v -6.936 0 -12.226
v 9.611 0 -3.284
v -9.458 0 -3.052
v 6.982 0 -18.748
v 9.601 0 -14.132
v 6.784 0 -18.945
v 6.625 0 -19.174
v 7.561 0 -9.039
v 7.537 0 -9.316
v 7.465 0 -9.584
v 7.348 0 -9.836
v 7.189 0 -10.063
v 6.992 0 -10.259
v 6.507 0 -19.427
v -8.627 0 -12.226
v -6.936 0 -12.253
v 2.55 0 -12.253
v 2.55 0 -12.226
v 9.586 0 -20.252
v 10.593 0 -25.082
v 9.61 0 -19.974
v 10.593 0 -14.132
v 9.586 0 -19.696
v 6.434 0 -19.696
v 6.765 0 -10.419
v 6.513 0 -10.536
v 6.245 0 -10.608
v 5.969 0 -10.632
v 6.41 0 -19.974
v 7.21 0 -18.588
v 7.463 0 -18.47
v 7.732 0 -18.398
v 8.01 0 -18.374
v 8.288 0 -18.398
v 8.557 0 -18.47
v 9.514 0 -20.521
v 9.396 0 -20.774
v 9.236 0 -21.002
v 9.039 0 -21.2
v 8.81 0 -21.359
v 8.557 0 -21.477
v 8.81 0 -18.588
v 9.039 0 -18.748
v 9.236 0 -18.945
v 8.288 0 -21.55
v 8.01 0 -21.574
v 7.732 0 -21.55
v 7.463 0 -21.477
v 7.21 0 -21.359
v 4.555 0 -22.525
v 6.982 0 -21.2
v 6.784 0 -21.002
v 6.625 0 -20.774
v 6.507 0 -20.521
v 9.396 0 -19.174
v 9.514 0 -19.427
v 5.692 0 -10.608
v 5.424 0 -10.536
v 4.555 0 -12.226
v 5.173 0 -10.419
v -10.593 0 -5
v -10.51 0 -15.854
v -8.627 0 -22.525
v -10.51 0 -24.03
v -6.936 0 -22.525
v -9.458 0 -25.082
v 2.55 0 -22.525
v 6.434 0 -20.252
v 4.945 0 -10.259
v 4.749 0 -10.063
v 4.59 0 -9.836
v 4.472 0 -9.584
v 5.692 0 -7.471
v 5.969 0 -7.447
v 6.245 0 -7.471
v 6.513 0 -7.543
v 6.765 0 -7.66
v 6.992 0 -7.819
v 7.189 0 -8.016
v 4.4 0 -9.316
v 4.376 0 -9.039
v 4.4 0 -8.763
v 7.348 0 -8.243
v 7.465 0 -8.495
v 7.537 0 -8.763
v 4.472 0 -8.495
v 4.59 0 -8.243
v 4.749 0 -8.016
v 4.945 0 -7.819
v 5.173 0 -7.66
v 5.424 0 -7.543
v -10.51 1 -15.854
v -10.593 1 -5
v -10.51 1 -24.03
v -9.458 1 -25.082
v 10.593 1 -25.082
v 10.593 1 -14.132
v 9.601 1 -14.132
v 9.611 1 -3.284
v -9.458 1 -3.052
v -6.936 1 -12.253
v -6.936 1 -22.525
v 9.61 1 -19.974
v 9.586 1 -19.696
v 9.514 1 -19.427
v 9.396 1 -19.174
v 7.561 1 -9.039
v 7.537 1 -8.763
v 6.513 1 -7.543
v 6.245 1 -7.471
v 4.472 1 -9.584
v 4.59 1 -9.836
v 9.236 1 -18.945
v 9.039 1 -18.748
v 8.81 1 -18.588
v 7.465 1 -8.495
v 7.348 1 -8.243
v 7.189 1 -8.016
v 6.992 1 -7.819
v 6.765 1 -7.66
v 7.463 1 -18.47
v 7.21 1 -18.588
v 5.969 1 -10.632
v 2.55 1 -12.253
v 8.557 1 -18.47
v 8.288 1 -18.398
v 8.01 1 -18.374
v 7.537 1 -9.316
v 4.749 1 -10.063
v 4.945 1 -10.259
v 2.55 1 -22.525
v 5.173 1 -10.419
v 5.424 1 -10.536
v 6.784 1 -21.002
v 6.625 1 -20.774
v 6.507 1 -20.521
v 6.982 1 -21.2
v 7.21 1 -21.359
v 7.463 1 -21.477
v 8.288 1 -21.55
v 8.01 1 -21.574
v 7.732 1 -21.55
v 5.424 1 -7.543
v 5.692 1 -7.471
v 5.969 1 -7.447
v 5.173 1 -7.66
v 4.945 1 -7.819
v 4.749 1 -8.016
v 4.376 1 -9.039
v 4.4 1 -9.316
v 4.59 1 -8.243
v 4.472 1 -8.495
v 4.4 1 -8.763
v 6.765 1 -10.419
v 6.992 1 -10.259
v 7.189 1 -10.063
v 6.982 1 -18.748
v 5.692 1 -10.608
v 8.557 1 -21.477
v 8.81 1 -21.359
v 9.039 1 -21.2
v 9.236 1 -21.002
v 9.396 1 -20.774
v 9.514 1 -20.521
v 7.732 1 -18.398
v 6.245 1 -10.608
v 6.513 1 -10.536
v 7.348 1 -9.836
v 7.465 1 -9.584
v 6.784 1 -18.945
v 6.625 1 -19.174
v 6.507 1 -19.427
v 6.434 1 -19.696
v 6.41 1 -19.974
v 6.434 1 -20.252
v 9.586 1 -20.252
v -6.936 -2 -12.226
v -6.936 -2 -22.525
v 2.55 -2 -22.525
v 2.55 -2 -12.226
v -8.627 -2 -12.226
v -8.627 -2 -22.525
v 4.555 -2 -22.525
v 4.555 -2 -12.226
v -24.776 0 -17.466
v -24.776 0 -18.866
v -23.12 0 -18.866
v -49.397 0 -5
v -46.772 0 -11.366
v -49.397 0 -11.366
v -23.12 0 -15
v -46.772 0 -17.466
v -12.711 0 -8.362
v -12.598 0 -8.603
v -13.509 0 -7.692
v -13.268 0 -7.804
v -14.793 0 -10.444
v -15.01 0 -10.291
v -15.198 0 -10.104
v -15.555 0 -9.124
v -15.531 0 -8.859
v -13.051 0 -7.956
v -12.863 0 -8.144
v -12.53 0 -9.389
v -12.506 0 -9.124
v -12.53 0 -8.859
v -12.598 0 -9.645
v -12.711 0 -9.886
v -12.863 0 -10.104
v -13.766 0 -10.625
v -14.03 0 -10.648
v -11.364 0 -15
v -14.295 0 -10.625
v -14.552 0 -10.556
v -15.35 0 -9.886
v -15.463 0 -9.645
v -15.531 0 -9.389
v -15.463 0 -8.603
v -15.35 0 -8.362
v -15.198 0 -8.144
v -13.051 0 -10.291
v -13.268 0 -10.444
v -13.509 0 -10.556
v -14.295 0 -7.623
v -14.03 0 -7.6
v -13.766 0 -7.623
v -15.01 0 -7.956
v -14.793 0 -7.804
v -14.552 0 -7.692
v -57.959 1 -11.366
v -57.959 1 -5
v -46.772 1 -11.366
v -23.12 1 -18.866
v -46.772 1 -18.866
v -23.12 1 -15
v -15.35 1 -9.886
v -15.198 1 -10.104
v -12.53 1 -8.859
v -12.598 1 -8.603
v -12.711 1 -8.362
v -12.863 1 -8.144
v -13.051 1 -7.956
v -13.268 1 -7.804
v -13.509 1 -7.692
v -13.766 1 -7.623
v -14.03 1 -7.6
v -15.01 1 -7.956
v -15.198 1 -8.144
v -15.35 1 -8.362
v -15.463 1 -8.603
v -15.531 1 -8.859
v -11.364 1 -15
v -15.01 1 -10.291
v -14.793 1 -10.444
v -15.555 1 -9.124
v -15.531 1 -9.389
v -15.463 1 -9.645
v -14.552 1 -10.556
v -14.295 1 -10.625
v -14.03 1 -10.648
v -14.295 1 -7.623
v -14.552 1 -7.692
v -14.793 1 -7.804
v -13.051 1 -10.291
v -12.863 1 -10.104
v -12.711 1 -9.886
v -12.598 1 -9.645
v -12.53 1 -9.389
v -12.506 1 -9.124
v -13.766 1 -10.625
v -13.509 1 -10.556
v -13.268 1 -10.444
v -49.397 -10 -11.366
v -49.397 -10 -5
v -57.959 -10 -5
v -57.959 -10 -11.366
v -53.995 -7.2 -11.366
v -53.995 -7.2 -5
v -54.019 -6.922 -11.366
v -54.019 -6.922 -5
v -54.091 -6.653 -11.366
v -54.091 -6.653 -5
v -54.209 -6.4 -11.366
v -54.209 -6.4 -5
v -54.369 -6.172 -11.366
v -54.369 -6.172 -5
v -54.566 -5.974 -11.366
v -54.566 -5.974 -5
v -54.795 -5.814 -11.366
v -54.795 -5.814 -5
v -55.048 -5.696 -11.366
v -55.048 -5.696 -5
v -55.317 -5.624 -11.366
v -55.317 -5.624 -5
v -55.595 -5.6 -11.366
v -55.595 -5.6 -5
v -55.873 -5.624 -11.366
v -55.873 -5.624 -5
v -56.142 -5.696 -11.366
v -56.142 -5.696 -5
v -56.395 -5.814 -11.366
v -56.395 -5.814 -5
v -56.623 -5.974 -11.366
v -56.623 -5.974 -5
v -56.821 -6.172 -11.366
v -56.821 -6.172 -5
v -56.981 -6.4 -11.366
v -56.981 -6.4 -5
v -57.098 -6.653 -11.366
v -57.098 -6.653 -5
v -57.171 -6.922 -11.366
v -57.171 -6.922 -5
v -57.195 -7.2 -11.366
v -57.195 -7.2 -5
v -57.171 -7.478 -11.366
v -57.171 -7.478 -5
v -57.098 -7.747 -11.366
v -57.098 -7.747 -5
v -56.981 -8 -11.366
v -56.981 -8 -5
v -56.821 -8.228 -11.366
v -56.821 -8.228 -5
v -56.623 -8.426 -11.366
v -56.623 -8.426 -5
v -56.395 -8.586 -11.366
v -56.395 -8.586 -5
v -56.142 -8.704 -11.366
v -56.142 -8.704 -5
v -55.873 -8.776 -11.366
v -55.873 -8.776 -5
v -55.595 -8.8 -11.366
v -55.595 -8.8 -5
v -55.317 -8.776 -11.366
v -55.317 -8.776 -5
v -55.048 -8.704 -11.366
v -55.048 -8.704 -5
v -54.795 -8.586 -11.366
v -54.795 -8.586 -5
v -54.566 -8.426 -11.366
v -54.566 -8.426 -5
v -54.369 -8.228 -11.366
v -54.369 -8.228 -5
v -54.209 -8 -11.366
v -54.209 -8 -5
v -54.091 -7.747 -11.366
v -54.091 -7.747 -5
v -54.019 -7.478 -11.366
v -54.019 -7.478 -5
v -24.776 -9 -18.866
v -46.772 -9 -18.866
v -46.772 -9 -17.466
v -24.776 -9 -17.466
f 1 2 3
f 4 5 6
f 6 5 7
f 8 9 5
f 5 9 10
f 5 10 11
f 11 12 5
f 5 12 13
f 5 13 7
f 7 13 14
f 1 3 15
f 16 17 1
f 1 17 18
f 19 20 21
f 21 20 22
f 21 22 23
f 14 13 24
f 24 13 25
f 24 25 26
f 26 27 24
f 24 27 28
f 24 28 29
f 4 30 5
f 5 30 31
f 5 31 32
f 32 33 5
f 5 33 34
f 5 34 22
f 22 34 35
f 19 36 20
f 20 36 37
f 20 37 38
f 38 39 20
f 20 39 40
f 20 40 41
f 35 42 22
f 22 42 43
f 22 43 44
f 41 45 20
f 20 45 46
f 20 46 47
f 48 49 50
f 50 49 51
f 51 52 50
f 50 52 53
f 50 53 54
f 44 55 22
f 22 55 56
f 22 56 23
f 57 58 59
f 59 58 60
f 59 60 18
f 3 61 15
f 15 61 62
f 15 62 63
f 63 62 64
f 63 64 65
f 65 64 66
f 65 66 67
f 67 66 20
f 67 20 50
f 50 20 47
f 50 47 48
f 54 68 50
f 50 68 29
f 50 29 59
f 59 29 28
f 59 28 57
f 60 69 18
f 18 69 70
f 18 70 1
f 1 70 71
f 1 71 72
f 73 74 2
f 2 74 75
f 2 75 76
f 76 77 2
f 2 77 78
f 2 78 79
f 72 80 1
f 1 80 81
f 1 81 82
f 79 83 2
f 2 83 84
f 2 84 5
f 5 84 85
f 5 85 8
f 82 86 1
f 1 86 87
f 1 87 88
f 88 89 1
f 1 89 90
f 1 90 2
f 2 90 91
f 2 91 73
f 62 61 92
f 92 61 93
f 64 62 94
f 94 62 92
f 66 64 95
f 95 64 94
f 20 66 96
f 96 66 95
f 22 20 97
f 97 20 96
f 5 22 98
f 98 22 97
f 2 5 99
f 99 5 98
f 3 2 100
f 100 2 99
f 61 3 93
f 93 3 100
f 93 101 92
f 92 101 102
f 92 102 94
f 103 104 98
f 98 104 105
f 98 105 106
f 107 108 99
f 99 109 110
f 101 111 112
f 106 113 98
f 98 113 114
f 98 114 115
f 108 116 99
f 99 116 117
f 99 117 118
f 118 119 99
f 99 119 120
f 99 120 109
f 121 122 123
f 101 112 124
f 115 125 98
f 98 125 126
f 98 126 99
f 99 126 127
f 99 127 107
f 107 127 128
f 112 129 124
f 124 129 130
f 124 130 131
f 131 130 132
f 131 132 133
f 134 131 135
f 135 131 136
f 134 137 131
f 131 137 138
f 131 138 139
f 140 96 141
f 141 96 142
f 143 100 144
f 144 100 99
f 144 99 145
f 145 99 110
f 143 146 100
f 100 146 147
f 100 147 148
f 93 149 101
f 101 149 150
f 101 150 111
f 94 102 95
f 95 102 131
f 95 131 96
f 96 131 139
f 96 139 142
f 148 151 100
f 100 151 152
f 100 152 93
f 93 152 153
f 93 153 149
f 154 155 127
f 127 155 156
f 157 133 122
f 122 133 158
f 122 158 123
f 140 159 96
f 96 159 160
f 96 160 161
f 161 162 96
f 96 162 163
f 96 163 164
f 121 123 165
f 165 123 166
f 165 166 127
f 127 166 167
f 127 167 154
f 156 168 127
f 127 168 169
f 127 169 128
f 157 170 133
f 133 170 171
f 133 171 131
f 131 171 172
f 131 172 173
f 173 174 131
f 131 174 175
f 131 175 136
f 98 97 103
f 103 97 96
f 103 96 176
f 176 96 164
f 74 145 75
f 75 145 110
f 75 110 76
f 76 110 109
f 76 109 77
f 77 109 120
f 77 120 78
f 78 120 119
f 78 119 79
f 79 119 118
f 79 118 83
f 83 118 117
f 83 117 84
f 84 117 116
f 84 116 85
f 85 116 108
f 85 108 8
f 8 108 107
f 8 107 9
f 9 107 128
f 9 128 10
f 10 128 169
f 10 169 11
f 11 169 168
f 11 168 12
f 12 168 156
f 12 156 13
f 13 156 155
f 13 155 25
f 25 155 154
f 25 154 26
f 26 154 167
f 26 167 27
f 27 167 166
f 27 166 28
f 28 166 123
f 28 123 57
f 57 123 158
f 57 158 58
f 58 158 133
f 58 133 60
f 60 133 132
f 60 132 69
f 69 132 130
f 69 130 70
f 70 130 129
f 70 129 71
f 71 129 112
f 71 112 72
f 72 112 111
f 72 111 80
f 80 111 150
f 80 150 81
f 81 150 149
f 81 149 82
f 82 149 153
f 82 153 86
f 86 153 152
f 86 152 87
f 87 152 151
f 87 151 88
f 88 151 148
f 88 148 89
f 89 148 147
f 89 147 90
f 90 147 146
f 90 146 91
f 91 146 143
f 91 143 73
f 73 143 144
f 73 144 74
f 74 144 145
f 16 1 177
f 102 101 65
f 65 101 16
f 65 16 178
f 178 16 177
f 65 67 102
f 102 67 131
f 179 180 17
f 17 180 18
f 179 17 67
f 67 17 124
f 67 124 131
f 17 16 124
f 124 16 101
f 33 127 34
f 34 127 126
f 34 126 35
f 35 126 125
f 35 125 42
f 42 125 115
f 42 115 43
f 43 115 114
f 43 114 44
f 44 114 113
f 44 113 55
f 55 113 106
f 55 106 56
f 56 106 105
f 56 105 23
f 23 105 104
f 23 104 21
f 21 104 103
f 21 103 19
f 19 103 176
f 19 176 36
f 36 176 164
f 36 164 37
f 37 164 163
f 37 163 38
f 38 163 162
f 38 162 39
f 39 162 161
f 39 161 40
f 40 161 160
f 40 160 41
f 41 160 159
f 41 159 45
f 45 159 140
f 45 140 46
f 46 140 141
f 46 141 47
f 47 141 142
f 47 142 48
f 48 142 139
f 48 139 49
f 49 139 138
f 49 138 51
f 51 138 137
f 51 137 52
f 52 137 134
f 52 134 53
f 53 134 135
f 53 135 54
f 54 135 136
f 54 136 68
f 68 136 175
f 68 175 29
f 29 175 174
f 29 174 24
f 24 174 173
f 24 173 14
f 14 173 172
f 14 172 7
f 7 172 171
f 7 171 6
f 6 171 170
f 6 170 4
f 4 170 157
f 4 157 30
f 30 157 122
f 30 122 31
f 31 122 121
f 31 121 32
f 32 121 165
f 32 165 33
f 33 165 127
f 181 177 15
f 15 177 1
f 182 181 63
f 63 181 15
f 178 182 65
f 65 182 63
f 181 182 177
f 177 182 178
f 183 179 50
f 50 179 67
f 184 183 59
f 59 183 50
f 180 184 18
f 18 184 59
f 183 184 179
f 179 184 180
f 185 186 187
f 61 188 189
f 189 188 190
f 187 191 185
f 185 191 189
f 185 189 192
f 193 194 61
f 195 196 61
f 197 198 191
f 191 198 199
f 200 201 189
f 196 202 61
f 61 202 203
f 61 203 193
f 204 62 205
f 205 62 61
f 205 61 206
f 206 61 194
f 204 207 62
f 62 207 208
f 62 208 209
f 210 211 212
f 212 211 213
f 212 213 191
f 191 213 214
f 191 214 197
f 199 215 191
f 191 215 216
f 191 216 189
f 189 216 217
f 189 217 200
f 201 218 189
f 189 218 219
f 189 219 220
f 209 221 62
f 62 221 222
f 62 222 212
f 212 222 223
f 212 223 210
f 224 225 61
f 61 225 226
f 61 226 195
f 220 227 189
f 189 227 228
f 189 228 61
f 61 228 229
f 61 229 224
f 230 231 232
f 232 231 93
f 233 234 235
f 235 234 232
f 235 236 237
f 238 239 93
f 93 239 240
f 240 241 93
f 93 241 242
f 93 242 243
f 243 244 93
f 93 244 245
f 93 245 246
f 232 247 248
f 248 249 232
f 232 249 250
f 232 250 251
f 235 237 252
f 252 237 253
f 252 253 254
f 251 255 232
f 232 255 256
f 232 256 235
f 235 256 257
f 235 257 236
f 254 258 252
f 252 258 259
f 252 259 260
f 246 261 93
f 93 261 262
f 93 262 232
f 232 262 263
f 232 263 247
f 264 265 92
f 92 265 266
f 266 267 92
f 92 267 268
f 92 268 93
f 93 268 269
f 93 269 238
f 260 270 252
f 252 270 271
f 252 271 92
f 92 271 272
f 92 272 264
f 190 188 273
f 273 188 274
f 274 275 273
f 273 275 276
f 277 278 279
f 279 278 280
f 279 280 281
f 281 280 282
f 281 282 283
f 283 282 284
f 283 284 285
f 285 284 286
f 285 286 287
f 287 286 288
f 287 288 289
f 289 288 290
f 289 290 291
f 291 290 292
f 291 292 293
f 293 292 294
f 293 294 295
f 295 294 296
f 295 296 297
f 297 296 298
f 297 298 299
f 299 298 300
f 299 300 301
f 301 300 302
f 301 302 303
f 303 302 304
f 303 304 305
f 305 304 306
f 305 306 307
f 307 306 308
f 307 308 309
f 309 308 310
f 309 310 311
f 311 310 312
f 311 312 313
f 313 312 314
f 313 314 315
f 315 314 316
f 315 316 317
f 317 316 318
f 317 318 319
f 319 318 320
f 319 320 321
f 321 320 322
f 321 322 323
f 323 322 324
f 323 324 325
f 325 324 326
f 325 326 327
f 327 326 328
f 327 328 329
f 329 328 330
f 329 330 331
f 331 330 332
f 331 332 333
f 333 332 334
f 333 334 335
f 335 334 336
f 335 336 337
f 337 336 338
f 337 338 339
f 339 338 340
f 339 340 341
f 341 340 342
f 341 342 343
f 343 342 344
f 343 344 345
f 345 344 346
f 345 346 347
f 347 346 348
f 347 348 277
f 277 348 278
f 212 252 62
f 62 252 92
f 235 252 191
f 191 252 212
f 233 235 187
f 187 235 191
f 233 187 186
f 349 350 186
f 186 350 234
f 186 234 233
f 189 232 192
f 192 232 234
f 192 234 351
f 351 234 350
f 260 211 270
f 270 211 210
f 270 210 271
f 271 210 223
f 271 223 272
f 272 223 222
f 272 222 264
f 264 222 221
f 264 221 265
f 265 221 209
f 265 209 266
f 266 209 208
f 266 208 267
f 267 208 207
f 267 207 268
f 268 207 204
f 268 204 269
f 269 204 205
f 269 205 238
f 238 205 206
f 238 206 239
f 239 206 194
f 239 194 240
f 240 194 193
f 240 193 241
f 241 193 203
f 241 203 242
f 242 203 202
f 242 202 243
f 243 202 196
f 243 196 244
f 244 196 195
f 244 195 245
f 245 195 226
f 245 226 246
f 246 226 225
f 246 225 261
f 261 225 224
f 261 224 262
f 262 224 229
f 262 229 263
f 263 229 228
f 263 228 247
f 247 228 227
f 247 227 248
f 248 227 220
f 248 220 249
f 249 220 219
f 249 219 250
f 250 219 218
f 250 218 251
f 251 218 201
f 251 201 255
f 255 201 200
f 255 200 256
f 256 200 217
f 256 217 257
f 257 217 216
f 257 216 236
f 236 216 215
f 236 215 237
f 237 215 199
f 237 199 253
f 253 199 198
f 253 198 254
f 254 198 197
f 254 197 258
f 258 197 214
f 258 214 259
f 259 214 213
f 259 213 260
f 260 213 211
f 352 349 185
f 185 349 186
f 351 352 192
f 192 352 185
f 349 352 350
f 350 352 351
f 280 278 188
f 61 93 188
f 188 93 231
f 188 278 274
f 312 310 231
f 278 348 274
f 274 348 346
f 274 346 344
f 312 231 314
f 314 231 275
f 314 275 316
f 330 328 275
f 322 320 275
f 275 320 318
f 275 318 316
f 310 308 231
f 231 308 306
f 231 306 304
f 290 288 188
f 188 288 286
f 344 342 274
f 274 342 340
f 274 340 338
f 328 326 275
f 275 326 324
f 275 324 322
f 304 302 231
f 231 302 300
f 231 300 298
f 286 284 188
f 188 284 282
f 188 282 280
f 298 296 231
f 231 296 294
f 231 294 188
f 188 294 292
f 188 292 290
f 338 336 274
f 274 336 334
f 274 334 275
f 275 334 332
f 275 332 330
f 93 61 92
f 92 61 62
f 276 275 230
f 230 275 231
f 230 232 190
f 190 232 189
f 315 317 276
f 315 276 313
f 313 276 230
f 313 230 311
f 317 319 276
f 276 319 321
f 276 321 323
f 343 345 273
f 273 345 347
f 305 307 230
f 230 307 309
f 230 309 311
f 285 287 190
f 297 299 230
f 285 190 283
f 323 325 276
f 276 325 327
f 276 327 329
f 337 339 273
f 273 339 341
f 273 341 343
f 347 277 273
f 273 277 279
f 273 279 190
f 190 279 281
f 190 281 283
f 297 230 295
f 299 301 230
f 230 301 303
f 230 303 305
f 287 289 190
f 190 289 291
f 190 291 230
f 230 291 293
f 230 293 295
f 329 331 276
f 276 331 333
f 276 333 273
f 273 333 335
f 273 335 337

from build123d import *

# Parameters (mm, degrees)
SKETCH_1_R          = 1.524071043
SKETCH_1_R_2        = 1.6
EXTRUDE_1_DEPTH     = 1
SKETCH_2_W          = 21.996438878
SKETCH_2_H          = 1.4
EXTRUDE_2_DEPTH     = 9
SKETCH_3_W          = 9.861847607
SKETCH_3_H          = 7.366382786
EXTRUDE_3_DEPTH     = 10
SKETCH_5_R          = 1.6
CUT_EXTRUDE_1_DEPTH = 7.366383
CUT_EXTRUDE_2_DEPTH = 12
SKETCH_7_R          = 1.592573362
SKETCH_7_R_2        = 1.6
SKETCH_7_W          = 9.485642318
SKETCH_7_H          = 10.27215013
EXTRUDE_4_DEPTH     = 1
SKETCH_8_W          = 1.691344217
SKETCH_8_H          = 10.298863766
SKETCH_8_W_2        = 2.005424039
EXTRUDE_5_DEPTH     = 2
SKETCH_9_W          = 1.3
SKETCH_9_H          = 7.366382786
CUT_EXTRUDE_3_DEPTH = 11
SKETCH_10_W         = 11.187081985
SKETCH_10_H         = 1
CUT_EXTRUDE_4_DEPTH = 11


with BuildPart() as part:
    # 草图1 → 凸台-拉伸1 (new body)
    with BuildSketch(Plane(origin=(0, 0, 0), x_dir=(1, 0, 0), z_dir=(0, 1, 0))):
        Polygon((-59.259088641, 5), (-10.592885375, 5), (-7.033226841, 1.452276921), (10.592885375, 1.452276921), (10.592885375, -5), (10.592885375, -12.524779967), (-8.311746214, -12.524779967), (-10.311746214, -10.524779967), (-10.311746214, -6.052343932), (-11.311746214, -5.052343932), (-11.364090146, -5), (-23.120004307, -5), (-23.120004307, -8.866382786), (-46.772006656, -8.866382786), (-46.772006656, -2.366382786), (-59.259088641, -2.366382786), (-59.259088641, 0), align=None)
        with Locations((-14.030480272, 0.876017114)):
            Circle(SKETCH_1_R, mode=Mode.SUBTRACT)
        with Locations((5.968790226, -10.352689008)):
            Circle(SKETCH_1_R_2, mode=Mode.SUBTRACT)
    extrude_1 = extrude(amount=EXTRUDE_1_DEPTH)

    # 草图2 → 凸台-拉伸2 (add)
    with BuildSketch(Plane.XZ):
        with Locations((-35.773787217, 8.166382786)):
            Rectangle(SKETCH_2_W, SKETCH_2_H)
    extrude_2 = extrude(amount=EXTRUDE_2_DEPTH)

    # 草图3 → 凸台-拉伸3 (add)
    with BuildSketch(Plane.XZ):
        with Locations((-54.328164838, -1.316808607)):
            Rectangle(SKETCH_3_W, SKETCH_3_H)
    extrude_3 = extrude(amount=EXTRUDE_3_DEPTH)

    # 草图5 → 切除-拉伸1 (cut)
    with BuildSketch(Plane.XY.offset(2.366382786)):
        with Locations((-55.594883285, -7.2)):
            Circle(SKETCH_5_R)
    cut_extrude_1 = extrude(amount=-CUT_EXTRUDE_1_DEPTH, mode=Mode.SUBTRACT)

    # 镜向3: 凸台-拉伸1, 凸台-拉伸2, 凸台-拉伸3, 切除-拉伸1 across plane
    add(extrude_1.mirror(Plane(origin=(-59.259088641, 1, -5), x_dir=(1, 0, 0), z_dir=(0, 0, 1))))
    add(extrude_2.mirror(Plane(origin=(-59.259088641, 1, -5), x_dir=(1, 0, 0), z_dir=(0, 0, 1))))
    add(extrude_3.mirror(Plane(origin=(-59.259088641, 1, -5), x_dir=(1, 0, 0), z_dir=(0, 0, 1))))
    add(cut_extrude_1.mirror(Plane(origin=(-59.259088641, 1, -5), x_dir=(1, 0, 0), z_dir=(0, 0, 1))), mode=Mode.SUBTRACT)

    # 草图6 → 切除-拉伸2 (cut, through all)
    with BuildSketch(Plane(origin=(0, 1, 0), x_dir=(1, 0, 0), z_dir=(0, 1, 0))):
        Polygon((-59.259088641, 5), (-10.592885375, 5), (-10.459693835, 22.524779967), (10.592885375, 22.524779967), (10.592885375, 5), (10.592885375, -12.524779967), (-59.259088641, -12.524779967), align=None)
    extrude(amount=-CUT_EXTRUDE_2_DEPTH, mode=Mode.SUBTRACT)

    # 草图9 → 切除-拉伸3 (cut)
    with BuildSketch(Plane(origin=(0, 1, 0), x_dir=(1, 0, 0), z_dir=(0, 1, 0))):
        with Locations((-58.609088641, 8.683191393)):
            Rectangle(SKETCH_9_W, SKETCH_9_H)
    extrude(amount=-CUT_EXTRUDE_3_DEPTH, mode=Mode.SUBTRACT)

    # 草图10 → 切除-拉伸4 (cut)
    with BuildSketch(Plane(origin=(0, 1, 0), x_dir=(1, 0, 0), z_dir=(0, 1, 0))):
        with Locations((-52.365547648, 11.866382786)):
            Rectangle(SKETCH_10_W, SKETCH_10_H)
    extrude(amount=-CUT_EXTRUDE_4_DEPTH, mode=Mode.SUBTRACT)


with BuildPart() as body_2:
    # 草图7 → 凸台-拉伸4 (new body)
    with BuildSketch(Plane(origin=(0, 1, 0), x_dir=(1, 0, 0), z_dir=(0, 1, 0))):
        Polygon((-10.510395305, 15.853694841), (-10.510395305, 24.029624988), (-9.458493443, 25.081526849), (6.768801236, 25.081526849), (10.592885375, 25.081526849), (10.592885375, 14.132157603), (9.601232072, 14.132157603), (9.610867698, 3.283603617), (-9.458493443, 3.052343932), (-10.592885375, 5), align=None)
        with Locations((5.968790226, 9.039428566)):
            Circle(SKETCH_7_R, mode=Mode.SUBTRACT)
        with Locations((8.010144522, 19.973832655)):
            Circle(SKETCH_7_R_2, mode=Mode.SUBTRACT)
        with Locations((-2.192808553, 17.388704902)):
            Rectangle(SKETCH_7_W, SKETCH_7_H, mode=Mode.SUBTRACT)
    extrude(amount=-EXTRUDE_4_DEPTH)

    # 草图8 → 凸台-拉伸5 (add)
    with BuildSketch(Plane.XZ):
        with Locations((-7.781301821, -17.375348084)):
            Rectangle(SKETCH_8_W, SKETCH_8_H)
        with Locations((3.552724626, -17.375348084)):
            Rectangle(SKETCH_8_W_2, SKETCH_8_H)
    extrude(amount=EXTRUDE_5_DEPTH)


solid = Compound([part.part, body_2.part])
